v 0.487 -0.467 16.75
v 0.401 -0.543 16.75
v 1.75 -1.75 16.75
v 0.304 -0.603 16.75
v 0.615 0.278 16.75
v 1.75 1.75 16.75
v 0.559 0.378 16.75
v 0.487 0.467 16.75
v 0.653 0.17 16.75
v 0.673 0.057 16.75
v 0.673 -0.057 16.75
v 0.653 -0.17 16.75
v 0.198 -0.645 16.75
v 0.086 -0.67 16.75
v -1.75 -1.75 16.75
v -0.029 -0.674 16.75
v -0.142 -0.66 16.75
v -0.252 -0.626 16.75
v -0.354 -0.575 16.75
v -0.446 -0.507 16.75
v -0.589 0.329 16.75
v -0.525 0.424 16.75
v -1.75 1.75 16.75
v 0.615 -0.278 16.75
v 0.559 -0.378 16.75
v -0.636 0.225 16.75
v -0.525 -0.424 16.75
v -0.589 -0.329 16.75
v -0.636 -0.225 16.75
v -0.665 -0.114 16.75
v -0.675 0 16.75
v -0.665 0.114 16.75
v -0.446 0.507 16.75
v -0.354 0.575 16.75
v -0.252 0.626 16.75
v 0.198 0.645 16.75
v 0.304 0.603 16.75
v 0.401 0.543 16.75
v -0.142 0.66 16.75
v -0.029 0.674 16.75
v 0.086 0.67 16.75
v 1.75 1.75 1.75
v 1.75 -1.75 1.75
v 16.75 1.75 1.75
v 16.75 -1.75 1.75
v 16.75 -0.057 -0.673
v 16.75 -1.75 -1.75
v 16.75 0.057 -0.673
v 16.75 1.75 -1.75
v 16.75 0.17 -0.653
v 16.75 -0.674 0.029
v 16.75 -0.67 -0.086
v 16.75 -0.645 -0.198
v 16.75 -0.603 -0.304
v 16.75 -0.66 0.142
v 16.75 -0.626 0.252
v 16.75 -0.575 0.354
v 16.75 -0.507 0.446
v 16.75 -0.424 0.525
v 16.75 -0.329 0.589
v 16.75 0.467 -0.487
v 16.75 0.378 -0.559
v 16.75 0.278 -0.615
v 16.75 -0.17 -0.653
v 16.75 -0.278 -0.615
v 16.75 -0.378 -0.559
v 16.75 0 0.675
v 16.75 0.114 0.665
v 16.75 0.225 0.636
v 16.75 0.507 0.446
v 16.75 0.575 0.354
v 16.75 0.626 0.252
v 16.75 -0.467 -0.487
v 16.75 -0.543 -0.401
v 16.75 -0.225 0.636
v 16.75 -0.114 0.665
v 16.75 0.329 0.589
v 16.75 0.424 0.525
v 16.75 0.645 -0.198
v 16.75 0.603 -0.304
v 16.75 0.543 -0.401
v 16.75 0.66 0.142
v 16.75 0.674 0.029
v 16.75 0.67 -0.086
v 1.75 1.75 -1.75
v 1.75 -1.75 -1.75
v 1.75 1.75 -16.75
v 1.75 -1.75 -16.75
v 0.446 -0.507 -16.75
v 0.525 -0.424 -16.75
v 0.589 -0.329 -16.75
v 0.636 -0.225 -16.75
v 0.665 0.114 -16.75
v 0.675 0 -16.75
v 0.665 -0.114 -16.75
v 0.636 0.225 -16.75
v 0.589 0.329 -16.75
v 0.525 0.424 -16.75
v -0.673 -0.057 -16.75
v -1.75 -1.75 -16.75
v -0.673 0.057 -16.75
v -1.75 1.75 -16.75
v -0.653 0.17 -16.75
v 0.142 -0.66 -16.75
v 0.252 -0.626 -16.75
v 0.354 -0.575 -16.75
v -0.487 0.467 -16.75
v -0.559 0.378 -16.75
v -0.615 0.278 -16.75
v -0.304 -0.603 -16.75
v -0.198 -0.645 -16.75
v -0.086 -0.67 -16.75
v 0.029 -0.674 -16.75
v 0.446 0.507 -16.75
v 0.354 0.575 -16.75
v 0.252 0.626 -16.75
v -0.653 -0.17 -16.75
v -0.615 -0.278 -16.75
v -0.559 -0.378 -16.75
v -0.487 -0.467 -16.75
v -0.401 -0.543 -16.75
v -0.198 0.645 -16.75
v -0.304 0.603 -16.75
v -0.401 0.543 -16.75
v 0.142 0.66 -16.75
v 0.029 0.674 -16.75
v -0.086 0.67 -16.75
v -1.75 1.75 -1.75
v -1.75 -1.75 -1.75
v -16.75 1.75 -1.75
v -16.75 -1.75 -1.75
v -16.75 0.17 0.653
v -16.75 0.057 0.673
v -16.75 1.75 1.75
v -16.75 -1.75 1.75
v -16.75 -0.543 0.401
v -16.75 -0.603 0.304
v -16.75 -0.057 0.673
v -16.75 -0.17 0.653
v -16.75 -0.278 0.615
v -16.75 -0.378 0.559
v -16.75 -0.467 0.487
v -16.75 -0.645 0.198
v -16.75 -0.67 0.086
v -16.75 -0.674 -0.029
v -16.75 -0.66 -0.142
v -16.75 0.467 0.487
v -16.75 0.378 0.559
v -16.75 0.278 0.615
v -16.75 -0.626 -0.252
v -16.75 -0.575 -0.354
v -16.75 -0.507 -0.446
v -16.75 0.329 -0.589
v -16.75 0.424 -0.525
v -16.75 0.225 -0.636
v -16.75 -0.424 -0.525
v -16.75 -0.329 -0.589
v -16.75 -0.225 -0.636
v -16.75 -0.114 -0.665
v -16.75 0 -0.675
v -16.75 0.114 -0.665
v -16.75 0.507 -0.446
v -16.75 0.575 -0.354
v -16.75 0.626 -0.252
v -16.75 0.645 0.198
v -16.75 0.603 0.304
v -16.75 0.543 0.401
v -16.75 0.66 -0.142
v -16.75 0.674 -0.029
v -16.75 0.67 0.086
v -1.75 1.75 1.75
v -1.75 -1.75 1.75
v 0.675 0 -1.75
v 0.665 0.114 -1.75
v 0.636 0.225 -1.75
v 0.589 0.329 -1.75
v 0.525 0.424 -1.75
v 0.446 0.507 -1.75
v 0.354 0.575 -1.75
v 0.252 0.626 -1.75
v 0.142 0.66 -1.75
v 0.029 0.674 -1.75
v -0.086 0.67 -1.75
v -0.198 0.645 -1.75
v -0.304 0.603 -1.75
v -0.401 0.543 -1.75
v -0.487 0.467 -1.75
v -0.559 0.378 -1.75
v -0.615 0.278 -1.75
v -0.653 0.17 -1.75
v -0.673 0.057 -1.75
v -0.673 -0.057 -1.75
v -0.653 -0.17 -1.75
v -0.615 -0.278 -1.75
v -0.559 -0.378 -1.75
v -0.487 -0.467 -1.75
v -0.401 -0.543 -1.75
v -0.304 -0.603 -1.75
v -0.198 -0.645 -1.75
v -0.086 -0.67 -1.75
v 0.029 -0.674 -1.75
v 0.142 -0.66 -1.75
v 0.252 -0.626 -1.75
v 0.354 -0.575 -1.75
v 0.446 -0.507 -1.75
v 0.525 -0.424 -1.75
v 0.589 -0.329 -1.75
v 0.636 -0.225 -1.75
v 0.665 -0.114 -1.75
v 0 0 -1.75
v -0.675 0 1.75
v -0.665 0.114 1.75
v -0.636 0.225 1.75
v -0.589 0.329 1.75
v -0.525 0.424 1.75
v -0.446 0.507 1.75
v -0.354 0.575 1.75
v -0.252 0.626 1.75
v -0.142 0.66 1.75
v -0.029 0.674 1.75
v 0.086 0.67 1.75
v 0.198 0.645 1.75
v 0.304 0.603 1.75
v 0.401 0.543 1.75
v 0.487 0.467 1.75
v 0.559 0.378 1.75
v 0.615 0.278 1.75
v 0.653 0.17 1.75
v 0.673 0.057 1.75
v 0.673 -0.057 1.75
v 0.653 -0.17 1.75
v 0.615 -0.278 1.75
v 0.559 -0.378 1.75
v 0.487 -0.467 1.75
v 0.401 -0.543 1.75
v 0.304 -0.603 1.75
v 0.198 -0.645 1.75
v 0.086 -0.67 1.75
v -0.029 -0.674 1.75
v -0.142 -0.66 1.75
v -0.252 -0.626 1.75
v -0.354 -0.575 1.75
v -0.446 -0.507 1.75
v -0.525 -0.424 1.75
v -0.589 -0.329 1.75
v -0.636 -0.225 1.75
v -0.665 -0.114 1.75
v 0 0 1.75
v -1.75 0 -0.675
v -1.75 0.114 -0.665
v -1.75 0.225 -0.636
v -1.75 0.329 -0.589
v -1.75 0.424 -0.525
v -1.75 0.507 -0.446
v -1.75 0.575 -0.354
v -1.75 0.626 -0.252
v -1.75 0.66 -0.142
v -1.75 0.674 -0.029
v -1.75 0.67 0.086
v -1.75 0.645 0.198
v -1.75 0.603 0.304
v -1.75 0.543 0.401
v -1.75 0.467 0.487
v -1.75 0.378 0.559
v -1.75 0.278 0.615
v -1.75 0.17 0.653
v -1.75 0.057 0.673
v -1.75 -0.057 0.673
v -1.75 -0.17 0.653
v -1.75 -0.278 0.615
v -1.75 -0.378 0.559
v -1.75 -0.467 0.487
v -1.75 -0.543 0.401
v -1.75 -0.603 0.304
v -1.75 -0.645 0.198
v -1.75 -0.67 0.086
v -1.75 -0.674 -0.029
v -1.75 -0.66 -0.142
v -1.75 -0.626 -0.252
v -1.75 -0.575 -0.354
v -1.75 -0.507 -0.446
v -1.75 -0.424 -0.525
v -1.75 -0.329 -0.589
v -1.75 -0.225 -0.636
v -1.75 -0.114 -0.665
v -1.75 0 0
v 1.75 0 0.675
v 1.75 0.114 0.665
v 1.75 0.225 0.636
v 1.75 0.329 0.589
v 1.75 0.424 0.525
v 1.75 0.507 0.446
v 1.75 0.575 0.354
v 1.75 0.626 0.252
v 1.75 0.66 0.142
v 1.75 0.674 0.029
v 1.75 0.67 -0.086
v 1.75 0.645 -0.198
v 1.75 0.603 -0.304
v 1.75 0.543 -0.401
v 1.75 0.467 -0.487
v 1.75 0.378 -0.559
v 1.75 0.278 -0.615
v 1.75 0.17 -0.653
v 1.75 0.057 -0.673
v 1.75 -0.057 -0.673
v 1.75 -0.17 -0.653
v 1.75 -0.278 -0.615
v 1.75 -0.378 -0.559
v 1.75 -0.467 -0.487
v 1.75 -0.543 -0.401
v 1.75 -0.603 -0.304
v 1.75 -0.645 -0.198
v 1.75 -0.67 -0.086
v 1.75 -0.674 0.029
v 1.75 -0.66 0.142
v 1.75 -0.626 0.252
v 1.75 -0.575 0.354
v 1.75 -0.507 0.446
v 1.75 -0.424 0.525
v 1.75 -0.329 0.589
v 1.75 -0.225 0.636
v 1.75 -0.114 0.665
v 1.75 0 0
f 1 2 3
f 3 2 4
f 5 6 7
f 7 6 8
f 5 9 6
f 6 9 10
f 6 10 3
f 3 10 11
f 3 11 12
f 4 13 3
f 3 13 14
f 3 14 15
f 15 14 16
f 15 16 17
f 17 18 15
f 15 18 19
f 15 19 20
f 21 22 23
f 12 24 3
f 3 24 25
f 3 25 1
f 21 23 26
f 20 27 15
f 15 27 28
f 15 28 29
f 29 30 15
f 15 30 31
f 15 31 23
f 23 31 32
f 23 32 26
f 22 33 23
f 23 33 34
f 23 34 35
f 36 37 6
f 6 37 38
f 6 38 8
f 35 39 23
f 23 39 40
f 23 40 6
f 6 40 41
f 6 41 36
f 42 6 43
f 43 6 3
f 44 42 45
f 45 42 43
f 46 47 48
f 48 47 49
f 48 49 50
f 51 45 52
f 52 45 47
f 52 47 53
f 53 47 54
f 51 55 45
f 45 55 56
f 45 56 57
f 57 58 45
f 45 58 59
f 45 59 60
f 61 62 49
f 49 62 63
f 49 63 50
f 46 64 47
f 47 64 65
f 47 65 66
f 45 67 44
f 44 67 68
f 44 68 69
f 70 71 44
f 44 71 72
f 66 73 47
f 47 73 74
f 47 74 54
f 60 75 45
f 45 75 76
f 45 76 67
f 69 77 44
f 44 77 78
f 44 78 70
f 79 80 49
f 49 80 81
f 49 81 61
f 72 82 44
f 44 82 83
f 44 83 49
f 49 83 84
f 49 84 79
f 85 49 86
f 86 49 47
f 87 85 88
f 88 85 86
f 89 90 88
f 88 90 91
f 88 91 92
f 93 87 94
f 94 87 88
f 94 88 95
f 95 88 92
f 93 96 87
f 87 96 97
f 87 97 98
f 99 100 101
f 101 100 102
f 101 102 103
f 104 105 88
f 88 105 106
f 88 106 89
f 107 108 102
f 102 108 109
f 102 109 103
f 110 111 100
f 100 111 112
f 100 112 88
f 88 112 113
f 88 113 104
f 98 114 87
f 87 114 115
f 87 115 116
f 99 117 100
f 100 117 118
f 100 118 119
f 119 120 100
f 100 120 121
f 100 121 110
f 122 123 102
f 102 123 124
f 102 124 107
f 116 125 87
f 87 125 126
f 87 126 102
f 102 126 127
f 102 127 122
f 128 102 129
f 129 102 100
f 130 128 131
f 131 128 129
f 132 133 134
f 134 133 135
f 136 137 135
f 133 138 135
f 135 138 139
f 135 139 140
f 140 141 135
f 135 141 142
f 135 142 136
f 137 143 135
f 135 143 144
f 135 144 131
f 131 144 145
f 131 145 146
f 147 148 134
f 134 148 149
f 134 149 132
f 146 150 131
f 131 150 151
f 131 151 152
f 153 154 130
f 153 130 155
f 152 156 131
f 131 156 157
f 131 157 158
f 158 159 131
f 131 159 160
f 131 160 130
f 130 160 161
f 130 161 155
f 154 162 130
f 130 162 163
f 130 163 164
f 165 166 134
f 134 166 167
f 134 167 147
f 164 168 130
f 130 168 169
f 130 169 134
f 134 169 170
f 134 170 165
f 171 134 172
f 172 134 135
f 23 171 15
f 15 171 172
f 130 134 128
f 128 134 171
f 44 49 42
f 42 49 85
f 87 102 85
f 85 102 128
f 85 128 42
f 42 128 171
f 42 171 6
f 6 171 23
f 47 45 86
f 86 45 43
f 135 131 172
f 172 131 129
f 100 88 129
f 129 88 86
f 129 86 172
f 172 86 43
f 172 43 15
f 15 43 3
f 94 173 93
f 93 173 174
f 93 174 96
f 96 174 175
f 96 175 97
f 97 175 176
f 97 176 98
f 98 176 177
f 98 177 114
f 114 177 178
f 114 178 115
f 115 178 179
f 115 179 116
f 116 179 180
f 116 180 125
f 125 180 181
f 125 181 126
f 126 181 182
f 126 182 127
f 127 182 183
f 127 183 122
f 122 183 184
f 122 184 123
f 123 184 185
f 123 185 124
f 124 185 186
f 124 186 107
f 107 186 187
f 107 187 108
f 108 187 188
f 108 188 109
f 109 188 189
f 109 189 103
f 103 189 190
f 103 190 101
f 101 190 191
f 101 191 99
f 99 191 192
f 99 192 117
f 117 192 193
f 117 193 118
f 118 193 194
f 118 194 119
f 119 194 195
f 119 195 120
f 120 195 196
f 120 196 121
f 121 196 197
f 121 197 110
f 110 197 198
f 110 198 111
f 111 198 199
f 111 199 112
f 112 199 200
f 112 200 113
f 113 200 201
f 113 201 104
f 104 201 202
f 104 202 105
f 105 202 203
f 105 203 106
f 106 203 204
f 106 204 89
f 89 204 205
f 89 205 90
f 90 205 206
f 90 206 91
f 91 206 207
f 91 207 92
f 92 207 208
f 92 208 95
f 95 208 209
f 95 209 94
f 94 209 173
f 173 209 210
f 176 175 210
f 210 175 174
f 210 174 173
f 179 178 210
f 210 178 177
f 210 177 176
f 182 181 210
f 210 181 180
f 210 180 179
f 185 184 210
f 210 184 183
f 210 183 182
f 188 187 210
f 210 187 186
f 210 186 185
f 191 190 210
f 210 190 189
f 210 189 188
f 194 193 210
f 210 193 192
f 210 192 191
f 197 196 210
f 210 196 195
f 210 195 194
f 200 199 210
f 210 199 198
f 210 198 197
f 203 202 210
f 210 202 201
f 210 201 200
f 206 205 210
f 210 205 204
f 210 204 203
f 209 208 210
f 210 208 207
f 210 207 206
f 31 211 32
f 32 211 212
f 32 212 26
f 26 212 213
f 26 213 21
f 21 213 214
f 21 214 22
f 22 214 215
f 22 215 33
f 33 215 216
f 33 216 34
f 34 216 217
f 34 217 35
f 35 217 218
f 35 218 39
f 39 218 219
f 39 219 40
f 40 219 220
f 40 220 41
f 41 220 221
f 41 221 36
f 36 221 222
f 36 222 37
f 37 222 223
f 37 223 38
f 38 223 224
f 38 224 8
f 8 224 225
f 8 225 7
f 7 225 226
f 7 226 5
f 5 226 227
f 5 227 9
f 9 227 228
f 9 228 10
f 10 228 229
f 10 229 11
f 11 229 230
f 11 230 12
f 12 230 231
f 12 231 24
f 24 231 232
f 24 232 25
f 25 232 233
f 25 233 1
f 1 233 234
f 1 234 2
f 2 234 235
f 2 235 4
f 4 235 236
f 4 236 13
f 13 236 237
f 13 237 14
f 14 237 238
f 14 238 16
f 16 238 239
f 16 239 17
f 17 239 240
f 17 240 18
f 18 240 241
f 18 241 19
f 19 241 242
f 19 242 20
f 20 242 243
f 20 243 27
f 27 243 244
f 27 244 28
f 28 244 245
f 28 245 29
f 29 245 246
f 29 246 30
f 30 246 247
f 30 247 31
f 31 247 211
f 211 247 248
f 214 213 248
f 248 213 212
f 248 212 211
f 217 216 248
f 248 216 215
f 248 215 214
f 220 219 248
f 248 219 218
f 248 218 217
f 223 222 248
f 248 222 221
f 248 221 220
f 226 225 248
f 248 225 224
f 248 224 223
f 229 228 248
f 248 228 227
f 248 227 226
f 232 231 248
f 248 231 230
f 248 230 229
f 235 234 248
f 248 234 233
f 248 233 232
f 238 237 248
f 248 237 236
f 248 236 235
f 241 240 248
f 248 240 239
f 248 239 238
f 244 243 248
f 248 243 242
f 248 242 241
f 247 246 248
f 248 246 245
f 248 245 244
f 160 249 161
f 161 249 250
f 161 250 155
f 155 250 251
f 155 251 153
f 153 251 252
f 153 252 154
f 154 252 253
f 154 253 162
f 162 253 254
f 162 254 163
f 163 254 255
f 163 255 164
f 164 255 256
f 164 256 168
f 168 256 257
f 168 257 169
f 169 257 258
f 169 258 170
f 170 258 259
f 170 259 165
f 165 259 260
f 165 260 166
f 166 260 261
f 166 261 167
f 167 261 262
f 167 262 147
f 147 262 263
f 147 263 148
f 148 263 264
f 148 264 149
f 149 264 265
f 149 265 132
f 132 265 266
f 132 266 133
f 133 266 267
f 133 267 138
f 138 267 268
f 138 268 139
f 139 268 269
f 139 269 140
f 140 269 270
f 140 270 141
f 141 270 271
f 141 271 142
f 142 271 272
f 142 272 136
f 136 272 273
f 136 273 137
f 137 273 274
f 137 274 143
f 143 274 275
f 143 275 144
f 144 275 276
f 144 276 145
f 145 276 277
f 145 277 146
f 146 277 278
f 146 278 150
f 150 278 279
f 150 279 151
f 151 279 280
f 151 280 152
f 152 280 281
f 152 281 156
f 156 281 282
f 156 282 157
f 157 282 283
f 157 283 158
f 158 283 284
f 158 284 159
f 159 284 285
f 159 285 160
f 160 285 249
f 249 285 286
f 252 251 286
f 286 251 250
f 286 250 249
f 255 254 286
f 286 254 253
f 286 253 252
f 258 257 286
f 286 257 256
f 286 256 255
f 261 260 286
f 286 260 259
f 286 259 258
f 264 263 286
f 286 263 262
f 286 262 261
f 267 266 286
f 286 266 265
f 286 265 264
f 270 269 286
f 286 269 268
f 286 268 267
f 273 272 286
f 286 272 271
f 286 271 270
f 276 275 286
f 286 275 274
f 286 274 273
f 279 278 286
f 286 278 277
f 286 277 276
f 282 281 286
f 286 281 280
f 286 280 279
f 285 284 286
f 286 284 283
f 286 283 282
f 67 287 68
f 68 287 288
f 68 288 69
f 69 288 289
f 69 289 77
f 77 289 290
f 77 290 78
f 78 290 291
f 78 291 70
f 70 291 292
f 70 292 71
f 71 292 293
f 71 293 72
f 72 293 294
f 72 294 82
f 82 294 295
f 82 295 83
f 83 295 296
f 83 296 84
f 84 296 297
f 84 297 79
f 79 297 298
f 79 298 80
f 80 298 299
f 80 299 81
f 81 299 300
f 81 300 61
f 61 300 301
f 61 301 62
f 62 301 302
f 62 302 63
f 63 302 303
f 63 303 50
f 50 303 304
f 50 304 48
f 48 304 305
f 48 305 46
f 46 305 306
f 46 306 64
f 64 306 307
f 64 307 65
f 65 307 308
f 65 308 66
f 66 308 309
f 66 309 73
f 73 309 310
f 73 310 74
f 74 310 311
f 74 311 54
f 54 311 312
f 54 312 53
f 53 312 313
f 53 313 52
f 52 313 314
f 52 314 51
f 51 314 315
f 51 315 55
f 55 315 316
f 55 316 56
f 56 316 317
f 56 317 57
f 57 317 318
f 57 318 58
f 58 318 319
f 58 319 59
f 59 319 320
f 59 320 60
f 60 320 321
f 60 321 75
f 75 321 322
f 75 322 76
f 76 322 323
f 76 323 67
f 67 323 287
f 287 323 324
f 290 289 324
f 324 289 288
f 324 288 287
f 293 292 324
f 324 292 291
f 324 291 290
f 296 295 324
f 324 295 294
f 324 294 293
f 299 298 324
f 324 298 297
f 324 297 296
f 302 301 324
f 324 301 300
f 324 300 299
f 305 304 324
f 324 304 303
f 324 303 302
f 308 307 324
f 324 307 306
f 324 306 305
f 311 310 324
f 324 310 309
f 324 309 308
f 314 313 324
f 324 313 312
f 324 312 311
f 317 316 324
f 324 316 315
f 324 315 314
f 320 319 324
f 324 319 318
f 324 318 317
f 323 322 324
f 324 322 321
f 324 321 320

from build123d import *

# Parameters (mm, degrees)
BOSS_EXTRUDE1_DEPTH = 1.75
CUT_EXTRUDE4_START  = -1.75
SKETCH2_R           = 0.675
CUT_EXTRUDE4_DEPTH  = 16
CUT_EXTRUDE5_START  = 1.75
SKETCH2_2_R         = 0.675
CUT_EXTRUDE5_DEPTH  = 16
CUT_EXTRUDE6_START  = 1.75
SKETCH3_R           = 0.675
CUT_EXTRUDE6_DEPTH  = 16
CUT_EXTRUDE7_START  = -1.75
SKETCH3_2_R         = 0.675
CUT_EXTRUDE7_DEPTH  = 16


with BuildPart() as part:
    # Sketch1 → Boss-Extrude1 (new body, symmetric)
    with BuildSketch(Plane(origin=(0, 0, 0), x_dir=(1, 0, 0), z_dir=(0, 1, 0))):
        Polygon((1.75, -1.75), (1.75, -16.75), (-1.75, -16.75), (-1.75, -1.75), (-16.75, -1.75), (-16.75, 1.75), (-1.75, 1.75), (-1.75, 16.75), (1.75, 16.75), (1.75, 1.75), (16.75, 1.75), (16.75, -1.75), align=None)
    extrude(amount=BOSS_EXTRUDE1_DEPTH, both=True)

    # Sketch2 → Cut-Extrude4 (cut, through all)
    with BuildSketch(Plane.XY.offset(CUT_EXTRUDE4_START)):
        Circle(SKETCH2_R)
    extrude(amount=-CUT_EXTRUDE4_DEPTH, mode=Mode.SUBTRACT)

    # Sketch2<2> → Cut-Extrude5 (cut, through all)
    with BuildSketch(Plane.XY.offset(CUT_EXTRUDE5_START)):
        Circle(SKETCH2_2_R)
    extrude(amount=CUT_EXTRUDE5_DEPTH, mode=Mode.SUBTRACT)

    # Sketch3 → Cut-Extrude6 (cut, through all)
    with BuildSketch(Plane.ZY.offset(CUT_EXTRUDE6_START)):
        Circle(SKETCH3_R)
    extrude(amount=CUT_EXTRUDE6_DEPTH, mode=Mode.SUBTRACT)

    # Sketch3<2> → Cut-Extrude7 (cut, through all)
    with BuildSketch(Plane.ZY.offset(CUT_EXTRUDE7_START)):
        Circle(SKETCH3_2_R)
    extrude(amount=-CUT_EXTRUDE7_DEPTH, mode=Mode.SUBTRACT)


solid = part.part
